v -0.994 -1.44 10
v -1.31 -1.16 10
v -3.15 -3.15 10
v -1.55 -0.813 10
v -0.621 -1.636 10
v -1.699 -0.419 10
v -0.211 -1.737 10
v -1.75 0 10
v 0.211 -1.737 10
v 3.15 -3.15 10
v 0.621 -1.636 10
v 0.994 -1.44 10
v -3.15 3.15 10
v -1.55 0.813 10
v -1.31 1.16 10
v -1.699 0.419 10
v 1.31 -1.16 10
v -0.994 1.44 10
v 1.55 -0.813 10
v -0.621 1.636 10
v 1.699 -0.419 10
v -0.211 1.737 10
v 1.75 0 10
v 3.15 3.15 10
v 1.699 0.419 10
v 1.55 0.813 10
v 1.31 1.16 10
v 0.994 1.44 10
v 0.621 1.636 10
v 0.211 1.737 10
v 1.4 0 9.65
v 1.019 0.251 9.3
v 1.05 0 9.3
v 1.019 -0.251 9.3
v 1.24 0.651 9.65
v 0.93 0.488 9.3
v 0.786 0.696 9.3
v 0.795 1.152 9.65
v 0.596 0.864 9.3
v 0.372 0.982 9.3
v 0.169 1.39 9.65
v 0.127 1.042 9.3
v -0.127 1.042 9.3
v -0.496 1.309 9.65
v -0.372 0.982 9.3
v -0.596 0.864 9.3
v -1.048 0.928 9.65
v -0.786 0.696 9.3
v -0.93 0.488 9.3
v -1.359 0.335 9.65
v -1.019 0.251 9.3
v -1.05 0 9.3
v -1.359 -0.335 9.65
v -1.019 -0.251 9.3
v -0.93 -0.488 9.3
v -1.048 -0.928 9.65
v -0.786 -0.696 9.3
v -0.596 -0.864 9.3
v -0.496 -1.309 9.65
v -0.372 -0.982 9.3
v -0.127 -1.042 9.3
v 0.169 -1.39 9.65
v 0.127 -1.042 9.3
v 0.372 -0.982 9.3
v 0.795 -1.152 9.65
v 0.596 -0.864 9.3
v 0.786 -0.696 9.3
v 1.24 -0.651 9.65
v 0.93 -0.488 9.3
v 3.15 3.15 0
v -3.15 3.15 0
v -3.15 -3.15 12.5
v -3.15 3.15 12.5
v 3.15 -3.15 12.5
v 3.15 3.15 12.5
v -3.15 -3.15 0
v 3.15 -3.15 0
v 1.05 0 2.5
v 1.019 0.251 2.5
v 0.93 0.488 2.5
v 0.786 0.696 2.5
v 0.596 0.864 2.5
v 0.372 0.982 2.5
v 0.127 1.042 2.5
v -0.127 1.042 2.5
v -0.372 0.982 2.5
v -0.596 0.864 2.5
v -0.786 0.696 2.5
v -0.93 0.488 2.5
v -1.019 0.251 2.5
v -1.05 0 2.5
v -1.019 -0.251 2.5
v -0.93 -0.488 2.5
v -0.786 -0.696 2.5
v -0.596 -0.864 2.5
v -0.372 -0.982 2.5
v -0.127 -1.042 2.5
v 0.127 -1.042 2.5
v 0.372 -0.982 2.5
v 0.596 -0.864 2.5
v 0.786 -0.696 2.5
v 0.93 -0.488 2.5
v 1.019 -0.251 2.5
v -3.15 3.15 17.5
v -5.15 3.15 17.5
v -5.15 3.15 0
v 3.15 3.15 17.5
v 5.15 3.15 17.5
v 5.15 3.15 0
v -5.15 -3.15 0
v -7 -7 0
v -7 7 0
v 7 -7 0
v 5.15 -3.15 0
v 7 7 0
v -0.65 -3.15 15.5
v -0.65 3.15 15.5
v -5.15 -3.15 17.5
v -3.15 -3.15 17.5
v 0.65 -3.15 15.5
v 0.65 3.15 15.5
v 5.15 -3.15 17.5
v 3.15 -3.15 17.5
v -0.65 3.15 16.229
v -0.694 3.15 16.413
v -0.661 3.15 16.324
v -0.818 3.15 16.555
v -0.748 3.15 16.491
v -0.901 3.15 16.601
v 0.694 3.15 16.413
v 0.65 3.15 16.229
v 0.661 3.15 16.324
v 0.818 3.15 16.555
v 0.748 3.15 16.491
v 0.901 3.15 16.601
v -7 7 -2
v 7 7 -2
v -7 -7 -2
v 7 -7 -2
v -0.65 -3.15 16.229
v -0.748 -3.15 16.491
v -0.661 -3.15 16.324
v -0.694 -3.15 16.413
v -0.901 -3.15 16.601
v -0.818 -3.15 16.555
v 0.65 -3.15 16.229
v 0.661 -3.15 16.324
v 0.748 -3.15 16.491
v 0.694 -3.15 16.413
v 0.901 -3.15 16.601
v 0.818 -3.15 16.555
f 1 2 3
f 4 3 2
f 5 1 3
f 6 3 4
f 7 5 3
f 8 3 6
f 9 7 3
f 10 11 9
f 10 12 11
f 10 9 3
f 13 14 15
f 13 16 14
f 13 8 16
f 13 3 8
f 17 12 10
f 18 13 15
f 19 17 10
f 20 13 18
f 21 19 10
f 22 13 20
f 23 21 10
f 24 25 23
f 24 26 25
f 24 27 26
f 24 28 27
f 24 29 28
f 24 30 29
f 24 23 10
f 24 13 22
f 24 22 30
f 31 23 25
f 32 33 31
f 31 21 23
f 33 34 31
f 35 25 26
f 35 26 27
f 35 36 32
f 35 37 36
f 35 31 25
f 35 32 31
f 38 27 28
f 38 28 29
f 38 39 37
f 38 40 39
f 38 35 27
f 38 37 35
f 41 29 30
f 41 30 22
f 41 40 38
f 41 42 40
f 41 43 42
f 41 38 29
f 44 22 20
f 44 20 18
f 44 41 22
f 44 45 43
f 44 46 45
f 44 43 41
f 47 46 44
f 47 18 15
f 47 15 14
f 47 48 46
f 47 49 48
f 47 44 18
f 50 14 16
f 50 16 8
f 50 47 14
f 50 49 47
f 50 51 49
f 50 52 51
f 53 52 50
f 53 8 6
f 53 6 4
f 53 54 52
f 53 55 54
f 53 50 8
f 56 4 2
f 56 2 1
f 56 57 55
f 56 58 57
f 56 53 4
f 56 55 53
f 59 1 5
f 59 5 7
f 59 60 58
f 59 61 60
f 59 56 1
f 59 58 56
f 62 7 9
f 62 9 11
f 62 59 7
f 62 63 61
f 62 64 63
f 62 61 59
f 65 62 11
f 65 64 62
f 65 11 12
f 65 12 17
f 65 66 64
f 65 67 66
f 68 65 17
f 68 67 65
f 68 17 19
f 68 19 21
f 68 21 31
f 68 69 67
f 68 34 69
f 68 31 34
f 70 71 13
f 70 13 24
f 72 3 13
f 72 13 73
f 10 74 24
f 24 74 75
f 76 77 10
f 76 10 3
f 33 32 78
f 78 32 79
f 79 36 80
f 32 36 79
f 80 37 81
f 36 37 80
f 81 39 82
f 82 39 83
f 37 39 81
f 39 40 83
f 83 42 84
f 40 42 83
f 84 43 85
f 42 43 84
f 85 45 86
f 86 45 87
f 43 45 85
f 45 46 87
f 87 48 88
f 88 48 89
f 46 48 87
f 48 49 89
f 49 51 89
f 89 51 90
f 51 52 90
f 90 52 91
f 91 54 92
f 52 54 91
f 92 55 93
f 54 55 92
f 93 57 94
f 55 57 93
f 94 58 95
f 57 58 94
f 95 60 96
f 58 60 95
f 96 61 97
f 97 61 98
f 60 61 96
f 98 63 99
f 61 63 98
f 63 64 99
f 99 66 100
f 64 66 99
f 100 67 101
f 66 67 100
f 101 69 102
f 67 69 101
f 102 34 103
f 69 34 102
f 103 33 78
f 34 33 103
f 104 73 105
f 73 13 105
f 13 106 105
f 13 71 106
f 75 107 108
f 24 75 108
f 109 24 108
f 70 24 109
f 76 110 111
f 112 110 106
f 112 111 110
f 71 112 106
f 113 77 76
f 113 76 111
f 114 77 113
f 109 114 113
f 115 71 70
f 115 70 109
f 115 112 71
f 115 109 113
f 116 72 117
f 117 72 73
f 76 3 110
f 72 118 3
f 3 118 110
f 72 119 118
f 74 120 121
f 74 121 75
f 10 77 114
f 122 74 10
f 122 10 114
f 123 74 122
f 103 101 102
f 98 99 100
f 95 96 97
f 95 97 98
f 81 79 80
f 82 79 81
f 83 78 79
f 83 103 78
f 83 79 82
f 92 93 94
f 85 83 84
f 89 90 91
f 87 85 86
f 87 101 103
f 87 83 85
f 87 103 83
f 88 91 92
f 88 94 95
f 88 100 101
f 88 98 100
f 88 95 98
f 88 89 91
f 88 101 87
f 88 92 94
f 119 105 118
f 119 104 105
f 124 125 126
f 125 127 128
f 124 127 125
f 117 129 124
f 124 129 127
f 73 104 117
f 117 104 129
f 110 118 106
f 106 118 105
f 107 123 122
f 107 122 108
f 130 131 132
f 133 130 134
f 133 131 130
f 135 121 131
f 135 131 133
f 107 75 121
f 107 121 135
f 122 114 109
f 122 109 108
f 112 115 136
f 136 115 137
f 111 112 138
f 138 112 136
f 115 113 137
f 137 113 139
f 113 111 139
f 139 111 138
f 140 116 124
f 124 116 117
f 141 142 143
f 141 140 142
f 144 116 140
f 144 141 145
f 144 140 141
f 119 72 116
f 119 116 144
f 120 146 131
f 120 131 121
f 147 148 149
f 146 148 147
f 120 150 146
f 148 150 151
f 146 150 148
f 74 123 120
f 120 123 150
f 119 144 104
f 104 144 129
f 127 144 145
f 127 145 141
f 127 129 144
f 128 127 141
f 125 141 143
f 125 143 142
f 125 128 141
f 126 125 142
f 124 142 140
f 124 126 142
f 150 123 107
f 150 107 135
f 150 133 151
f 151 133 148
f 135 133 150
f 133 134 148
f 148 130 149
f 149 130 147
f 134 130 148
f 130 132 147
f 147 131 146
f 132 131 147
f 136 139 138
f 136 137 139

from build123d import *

# Parameters (mm, degrees)
SKETCH_W     = 6.3
SKETCH_H     = 6.3
PAD_DEPTH    = 10
SKETCH001_W  = 14
SKETCH001_H  = 14
PAD001_DEPTH = 2
SKETCH002_R  = 1.05
POCKET_DEPTH = 7.5
SKETCH003_W  = 6.3
SKETCH003_H  = 17.5
PAD002_DEPTH = 2
PAD003_DEPTH = 6.3
FILLET_R     = 0.4
FILLET001_R  = 0.4
CHAMFER_SIZE = 0.7


with BuildPart() as part:
    # Sketch → Pad (new body)
    with BuildSketch(Plane.XY):
        Rectangle(SKETCH_W, SKETCH_H)
    extrude(amount=PAD_DEPTH)

    # Sketch001 → Pad001 (join)
    with BuildSketch(Plane.XY):
        Rectangle(SKETCH001_W, SKETCH001_H)
    extrude(amount=-PAD001_DEPTH)

    # Sketch002 (on Face11 of Pad001) → Pocket (cut)
    with BuildSketch(Plane.XY.offset(10)):
        Circle(SKETCH002_R)
    extrude(amount=-POCKET_DEPTH, mode=Mode.SUBTRACT)

    # Sketch003 (on Face9 of Pocket) → Pad002 (join)
    with BuildSketch(Plane.YZ.offset(3.15)):
        with Locations((0, 8.75)):
            Rectangle(SKETCH003_W, SKETCH003_H)
    pad002 = extrude(amount=PAD002_DEPTH)

    # Sketch004 (on Face8 of Pad002) → Pad003 (join)
    with BuildSketch(Plane.XZ.offset(3.15)):
        Polygon((3.15, 17.5), (0.65, 16.5), (0.65, 15.5), (3.15, 12.5), align=None)
    pad003 = extrude(amount=-PAD003_DEPTH)

    # Mirrored: Pad003, Pad002 across Sketch004 V_Axis
    add(pad003.mirror(Plane(origin=(0, -3.15, 0), x_dir=(0, -1, 0), z_dir=(1, 0, 0))))
    add(pad002.mirror(Plane(origin=(0, -3.15, 0), x_dir=(0, -1, 0), z_dir=(1, 0, 0))))

    # Fillet
    fillet_edges = [part.edges().sort_by_distance(p)[0] for p in [
        (0.65, 0, 16.5),
    ]]
    fillet(fillet_edges, radius=FILLET_R)

    # Fillet001
    fillet001_edges = [part.edges().sort_by_distance(p)[0] for p in [
        (-0.65, 0, 16.5),
    ]]
    fillet(fillet001_edges, radius=FILLET001_R)

    # Chamfer
    chamfer_edges = [part.edges().sort_by_distance(p)[0] for p in [
        (-1.05, 0, 10),
    ]]
    chamfer(chamfer_edges, length=CHAMFER_SIZE)


solid = part.part
